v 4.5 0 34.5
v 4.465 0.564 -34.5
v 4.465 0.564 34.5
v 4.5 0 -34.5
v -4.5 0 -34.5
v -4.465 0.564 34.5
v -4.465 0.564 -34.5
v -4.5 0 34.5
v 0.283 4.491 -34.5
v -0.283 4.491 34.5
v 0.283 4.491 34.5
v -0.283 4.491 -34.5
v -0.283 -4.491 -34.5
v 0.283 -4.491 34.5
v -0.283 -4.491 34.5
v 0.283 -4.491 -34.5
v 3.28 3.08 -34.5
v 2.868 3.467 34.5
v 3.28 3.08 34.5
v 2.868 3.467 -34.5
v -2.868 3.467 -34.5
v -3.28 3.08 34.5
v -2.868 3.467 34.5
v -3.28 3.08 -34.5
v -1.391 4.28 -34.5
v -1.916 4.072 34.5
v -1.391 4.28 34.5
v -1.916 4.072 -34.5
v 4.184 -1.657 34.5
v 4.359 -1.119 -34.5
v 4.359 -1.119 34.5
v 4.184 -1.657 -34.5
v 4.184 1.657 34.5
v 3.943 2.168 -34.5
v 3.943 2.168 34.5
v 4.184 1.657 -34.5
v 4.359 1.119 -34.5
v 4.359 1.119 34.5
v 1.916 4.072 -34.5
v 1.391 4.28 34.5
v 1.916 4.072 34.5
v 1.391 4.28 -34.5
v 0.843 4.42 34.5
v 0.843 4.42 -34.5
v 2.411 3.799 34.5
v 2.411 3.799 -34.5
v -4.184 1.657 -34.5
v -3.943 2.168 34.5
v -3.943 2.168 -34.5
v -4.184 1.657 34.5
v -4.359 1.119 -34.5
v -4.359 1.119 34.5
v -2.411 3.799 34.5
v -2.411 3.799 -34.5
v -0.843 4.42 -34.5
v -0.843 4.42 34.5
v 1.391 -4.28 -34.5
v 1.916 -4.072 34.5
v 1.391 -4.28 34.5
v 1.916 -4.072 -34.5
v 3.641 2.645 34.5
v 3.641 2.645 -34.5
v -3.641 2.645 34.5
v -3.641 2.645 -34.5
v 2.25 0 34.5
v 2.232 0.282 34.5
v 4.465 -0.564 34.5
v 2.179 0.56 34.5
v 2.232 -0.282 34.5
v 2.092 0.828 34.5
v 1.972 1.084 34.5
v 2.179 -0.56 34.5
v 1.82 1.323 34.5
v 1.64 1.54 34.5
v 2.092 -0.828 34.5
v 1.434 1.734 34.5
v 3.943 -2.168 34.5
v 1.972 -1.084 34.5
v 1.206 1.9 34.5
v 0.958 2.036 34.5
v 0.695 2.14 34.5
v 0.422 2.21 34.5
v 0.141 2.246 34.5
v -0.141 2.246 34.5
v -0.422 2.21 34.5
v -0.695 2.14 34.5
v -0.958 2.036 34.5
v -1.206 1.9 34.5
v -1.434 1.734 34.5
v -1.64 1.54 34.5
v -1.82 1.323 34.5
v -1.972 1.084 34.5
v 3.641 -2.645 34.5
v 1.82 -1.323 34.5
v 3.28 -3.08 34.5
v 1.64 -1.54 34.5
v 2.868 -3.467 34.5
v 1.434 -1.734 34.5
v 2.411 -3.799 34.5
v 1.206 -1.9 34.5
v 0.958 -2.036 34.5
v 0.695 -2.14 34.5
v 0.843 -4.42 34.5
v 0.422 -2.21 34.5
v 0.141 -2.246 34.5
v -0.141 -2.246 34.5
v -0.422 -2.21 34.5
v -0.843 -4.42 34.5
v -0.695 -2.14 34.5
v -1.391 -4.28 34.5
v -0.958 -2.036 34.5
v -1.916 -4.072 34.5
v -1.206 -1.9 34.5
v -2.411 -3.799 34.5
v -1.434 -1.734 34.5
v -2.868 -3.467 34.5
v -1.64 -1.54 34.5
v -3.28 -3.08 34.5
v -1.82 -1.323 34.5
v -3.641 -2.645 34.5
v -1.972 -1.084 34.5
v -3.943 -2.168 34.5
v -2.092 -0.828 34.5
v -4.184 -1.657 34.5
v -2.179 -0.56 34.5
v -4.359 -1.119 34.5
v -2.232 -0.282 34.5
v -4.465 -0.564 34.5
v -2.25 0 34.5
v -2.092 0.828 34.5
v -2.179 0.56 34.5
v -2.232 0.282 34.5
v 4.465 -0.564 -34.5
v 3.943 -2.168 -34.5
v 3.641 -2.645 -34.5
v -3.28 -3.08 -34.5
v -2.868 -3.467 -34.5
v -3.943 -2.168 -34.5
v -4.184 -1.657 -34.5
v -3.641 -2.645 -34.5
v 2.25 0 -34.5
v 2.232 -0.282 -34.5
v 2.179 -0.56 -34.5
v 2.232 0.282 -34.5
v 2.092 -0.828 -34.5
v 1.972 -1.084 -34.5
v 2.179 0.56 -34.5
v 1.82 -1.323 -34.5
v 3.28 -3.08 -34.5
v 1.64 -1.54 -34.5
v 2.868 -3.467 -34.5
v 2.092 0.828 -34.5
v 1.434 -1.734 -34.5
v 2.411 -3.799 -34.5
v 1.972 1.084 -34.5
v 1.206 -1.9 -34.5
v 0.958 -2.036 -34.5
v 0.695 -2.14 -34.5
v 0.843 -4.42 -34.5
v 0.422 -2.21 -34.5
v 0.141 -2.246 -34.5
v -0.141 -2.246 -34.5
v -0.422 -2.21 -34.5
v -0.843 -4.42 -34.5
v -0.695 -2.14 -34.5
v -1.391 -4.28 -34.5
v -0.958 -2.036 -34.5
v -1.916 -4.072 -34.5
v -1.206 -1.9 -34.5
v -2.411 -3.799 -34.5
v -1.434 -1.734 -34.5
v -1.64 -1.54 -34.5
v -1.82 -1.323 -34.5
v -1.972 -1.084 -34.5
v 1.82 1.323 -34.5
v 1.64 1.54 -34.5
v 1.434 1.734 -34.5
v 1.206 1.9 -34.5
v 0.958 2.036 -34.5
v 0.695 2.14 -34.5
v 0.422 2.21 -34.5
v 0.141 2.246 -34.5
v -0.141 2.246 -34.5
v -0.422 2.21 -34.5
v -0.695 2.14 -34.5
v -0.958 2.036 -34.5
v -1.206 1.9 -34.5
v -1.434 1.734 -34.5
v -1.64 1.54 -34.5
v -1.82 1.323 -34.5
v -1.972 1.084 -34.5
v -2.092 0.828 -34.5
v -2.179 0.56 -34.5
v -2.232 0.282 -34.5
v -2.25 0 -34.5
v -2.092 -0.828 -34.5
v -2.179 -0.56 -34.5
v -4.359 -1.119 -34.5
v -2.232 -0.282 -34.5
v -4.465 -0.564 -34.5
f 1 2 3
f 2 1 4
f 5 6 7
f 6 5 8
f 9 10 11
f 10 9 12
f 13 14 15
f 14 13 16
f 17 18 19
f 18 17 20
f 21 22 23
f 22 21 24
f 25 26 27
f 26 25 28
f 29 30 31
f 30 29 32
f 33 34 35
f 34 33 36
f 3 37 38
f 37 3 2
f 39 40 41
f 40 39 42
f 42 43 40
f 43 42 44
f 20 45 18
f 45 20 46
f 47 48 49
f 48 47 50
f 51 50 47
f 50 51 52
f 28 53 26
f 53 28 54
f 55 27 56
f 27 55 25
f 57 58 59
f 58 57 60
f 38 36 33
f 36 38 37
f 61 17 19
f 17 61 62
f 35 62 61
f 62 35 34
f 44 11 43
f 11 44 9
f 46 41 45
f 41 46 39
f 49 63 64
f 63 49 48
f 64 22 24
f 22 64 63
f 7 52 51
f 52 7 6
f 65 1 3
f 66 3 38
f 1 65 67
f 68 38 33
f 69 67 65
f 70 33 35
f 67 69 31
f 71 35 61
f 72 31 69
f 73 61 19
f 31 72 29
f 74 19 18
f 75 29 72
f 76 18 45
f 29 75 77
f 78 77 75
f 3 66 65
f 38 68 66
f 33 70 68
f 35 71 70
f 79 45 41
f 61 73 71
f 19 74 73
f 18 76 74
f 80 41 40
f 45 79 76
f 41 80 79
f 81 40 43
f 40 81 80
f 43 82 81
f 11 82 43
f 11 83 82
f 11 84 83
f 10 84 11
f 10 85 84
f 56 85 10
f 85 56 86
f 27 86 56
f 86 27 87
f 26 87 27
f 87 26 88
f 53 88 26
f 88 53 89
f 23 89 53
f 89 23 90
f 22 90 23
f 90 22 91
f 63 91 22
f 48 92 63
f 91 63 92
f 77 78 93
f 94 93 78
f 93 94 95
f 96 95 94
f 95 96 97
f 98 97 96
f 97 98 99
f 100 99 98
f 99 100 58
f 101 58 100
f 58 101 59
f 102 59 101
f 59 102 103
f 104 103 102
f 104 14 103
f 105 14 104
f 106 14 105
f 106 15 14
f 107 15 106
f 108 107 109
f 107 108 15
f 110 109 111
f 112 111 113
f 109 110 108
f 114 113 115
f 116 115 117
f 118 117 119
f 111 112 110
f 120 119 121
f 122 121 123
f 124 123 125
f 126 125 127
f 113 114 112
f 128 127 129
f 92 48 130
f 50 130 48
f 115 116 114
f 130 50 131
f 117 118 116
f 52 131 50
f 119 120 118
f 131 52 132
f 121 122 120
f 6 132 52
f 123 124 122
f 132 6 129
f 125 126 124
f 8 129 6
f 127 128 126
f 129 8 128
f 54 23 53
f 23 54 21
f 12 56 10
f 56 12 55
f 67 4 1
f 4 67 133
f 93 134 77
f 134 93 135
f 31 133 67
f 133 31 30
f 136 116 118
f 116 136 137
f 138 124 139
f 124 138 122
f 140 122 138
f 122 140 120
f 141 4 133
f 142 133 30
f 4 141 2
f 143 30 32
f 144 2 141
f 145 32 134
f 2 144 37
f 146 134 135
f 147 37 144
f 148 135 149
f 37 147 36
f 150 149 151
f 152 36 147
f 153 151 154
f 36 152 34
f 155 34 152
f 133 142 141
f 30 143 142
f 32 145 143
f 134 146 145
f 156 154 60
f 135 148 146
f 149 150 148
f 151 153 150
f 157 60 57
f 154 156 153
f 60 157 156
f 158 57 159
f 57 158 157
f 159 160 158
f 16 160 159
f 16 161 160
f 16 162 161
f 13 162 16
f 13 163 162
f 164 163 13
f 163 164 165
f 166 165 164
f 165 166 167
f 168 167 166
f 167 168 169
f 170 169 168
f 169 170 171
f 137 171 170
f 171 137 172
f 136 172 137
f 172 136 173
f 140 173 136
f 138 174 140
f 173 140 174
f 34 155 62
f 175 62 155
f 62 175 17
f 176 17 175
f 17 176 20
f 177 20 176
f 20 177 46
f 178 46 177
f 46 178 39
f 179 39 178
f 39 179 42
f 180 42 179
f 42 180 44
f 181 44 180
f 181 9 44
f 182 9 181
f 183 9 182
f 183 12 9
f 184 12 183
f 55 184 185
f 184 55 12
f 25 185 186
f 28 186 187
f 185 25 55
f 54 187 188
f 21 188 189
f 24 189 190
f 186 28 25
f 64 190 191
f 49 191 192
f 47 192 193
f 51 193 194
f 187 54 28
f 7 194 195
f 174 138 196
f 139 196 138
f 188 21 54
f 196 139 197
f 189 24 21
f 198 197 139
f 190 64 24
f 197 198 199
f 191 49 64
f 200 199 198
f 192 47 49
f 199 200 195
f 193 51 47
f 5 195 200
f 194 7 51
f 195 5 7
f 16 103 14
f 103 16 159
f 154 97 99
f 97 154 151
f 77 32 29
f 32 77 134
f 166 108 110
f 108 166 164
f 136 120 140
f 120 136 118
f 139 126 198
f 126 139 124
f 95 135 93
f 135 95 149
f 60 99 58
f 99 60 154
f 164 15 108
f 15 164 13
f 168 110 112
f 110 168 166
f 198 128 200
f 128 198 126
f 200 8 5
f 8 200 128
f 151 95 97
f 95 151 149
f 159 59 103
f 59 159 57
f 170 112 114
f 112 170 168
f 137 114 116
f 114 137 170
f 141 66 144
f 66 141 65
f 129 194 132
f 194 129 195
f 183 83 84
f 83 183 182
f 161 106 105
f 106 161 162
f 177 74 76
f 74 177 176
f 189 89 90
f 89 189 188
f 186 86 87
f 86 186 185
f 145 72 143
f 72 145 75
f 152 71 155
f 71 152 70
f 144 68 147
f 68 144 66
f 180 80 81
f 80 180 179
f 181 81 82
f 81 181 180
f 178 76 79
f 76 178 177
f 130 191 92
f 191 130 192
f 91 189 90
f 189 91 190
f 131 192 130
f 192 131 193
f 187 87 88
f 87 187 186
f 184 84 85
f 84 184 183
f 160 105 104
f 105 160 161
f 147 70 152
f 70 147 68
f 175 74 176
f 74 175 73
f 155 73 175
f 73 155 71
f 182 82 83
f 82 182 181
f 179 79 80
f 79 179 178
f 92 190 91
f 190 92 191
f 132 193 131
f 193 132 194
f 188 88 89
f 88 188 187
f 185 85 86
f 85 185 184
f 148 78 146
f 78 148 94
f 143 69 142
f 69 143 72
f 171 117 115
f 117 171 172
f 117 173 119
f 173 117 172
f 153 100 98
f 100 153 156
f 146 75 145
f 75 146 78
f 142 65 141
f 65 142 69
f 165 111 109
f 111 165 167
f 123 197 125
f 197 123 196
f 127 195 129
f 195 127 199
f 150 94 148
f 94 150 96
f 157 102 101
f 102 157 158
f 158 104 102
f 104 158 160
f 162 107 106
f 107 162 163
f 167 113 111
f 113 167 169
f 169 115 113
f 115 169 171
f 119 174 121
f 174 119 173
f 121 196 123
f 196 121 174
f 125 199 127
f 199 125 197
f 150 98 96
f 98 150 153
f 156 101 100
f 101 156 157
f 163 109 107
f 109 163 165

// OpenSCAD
$fn = 50;


difference() {
	union() {
		translate(v = [0, 0, -34.5000000000]) {
			cylinder(h = 69, r = 4.5000000000);
		}
	}
	union() {
		translate(v = [0, 0, -100.0000000000]) {
			cylinder(h = 200, r = 2.2500000000);
		}
	}
}
